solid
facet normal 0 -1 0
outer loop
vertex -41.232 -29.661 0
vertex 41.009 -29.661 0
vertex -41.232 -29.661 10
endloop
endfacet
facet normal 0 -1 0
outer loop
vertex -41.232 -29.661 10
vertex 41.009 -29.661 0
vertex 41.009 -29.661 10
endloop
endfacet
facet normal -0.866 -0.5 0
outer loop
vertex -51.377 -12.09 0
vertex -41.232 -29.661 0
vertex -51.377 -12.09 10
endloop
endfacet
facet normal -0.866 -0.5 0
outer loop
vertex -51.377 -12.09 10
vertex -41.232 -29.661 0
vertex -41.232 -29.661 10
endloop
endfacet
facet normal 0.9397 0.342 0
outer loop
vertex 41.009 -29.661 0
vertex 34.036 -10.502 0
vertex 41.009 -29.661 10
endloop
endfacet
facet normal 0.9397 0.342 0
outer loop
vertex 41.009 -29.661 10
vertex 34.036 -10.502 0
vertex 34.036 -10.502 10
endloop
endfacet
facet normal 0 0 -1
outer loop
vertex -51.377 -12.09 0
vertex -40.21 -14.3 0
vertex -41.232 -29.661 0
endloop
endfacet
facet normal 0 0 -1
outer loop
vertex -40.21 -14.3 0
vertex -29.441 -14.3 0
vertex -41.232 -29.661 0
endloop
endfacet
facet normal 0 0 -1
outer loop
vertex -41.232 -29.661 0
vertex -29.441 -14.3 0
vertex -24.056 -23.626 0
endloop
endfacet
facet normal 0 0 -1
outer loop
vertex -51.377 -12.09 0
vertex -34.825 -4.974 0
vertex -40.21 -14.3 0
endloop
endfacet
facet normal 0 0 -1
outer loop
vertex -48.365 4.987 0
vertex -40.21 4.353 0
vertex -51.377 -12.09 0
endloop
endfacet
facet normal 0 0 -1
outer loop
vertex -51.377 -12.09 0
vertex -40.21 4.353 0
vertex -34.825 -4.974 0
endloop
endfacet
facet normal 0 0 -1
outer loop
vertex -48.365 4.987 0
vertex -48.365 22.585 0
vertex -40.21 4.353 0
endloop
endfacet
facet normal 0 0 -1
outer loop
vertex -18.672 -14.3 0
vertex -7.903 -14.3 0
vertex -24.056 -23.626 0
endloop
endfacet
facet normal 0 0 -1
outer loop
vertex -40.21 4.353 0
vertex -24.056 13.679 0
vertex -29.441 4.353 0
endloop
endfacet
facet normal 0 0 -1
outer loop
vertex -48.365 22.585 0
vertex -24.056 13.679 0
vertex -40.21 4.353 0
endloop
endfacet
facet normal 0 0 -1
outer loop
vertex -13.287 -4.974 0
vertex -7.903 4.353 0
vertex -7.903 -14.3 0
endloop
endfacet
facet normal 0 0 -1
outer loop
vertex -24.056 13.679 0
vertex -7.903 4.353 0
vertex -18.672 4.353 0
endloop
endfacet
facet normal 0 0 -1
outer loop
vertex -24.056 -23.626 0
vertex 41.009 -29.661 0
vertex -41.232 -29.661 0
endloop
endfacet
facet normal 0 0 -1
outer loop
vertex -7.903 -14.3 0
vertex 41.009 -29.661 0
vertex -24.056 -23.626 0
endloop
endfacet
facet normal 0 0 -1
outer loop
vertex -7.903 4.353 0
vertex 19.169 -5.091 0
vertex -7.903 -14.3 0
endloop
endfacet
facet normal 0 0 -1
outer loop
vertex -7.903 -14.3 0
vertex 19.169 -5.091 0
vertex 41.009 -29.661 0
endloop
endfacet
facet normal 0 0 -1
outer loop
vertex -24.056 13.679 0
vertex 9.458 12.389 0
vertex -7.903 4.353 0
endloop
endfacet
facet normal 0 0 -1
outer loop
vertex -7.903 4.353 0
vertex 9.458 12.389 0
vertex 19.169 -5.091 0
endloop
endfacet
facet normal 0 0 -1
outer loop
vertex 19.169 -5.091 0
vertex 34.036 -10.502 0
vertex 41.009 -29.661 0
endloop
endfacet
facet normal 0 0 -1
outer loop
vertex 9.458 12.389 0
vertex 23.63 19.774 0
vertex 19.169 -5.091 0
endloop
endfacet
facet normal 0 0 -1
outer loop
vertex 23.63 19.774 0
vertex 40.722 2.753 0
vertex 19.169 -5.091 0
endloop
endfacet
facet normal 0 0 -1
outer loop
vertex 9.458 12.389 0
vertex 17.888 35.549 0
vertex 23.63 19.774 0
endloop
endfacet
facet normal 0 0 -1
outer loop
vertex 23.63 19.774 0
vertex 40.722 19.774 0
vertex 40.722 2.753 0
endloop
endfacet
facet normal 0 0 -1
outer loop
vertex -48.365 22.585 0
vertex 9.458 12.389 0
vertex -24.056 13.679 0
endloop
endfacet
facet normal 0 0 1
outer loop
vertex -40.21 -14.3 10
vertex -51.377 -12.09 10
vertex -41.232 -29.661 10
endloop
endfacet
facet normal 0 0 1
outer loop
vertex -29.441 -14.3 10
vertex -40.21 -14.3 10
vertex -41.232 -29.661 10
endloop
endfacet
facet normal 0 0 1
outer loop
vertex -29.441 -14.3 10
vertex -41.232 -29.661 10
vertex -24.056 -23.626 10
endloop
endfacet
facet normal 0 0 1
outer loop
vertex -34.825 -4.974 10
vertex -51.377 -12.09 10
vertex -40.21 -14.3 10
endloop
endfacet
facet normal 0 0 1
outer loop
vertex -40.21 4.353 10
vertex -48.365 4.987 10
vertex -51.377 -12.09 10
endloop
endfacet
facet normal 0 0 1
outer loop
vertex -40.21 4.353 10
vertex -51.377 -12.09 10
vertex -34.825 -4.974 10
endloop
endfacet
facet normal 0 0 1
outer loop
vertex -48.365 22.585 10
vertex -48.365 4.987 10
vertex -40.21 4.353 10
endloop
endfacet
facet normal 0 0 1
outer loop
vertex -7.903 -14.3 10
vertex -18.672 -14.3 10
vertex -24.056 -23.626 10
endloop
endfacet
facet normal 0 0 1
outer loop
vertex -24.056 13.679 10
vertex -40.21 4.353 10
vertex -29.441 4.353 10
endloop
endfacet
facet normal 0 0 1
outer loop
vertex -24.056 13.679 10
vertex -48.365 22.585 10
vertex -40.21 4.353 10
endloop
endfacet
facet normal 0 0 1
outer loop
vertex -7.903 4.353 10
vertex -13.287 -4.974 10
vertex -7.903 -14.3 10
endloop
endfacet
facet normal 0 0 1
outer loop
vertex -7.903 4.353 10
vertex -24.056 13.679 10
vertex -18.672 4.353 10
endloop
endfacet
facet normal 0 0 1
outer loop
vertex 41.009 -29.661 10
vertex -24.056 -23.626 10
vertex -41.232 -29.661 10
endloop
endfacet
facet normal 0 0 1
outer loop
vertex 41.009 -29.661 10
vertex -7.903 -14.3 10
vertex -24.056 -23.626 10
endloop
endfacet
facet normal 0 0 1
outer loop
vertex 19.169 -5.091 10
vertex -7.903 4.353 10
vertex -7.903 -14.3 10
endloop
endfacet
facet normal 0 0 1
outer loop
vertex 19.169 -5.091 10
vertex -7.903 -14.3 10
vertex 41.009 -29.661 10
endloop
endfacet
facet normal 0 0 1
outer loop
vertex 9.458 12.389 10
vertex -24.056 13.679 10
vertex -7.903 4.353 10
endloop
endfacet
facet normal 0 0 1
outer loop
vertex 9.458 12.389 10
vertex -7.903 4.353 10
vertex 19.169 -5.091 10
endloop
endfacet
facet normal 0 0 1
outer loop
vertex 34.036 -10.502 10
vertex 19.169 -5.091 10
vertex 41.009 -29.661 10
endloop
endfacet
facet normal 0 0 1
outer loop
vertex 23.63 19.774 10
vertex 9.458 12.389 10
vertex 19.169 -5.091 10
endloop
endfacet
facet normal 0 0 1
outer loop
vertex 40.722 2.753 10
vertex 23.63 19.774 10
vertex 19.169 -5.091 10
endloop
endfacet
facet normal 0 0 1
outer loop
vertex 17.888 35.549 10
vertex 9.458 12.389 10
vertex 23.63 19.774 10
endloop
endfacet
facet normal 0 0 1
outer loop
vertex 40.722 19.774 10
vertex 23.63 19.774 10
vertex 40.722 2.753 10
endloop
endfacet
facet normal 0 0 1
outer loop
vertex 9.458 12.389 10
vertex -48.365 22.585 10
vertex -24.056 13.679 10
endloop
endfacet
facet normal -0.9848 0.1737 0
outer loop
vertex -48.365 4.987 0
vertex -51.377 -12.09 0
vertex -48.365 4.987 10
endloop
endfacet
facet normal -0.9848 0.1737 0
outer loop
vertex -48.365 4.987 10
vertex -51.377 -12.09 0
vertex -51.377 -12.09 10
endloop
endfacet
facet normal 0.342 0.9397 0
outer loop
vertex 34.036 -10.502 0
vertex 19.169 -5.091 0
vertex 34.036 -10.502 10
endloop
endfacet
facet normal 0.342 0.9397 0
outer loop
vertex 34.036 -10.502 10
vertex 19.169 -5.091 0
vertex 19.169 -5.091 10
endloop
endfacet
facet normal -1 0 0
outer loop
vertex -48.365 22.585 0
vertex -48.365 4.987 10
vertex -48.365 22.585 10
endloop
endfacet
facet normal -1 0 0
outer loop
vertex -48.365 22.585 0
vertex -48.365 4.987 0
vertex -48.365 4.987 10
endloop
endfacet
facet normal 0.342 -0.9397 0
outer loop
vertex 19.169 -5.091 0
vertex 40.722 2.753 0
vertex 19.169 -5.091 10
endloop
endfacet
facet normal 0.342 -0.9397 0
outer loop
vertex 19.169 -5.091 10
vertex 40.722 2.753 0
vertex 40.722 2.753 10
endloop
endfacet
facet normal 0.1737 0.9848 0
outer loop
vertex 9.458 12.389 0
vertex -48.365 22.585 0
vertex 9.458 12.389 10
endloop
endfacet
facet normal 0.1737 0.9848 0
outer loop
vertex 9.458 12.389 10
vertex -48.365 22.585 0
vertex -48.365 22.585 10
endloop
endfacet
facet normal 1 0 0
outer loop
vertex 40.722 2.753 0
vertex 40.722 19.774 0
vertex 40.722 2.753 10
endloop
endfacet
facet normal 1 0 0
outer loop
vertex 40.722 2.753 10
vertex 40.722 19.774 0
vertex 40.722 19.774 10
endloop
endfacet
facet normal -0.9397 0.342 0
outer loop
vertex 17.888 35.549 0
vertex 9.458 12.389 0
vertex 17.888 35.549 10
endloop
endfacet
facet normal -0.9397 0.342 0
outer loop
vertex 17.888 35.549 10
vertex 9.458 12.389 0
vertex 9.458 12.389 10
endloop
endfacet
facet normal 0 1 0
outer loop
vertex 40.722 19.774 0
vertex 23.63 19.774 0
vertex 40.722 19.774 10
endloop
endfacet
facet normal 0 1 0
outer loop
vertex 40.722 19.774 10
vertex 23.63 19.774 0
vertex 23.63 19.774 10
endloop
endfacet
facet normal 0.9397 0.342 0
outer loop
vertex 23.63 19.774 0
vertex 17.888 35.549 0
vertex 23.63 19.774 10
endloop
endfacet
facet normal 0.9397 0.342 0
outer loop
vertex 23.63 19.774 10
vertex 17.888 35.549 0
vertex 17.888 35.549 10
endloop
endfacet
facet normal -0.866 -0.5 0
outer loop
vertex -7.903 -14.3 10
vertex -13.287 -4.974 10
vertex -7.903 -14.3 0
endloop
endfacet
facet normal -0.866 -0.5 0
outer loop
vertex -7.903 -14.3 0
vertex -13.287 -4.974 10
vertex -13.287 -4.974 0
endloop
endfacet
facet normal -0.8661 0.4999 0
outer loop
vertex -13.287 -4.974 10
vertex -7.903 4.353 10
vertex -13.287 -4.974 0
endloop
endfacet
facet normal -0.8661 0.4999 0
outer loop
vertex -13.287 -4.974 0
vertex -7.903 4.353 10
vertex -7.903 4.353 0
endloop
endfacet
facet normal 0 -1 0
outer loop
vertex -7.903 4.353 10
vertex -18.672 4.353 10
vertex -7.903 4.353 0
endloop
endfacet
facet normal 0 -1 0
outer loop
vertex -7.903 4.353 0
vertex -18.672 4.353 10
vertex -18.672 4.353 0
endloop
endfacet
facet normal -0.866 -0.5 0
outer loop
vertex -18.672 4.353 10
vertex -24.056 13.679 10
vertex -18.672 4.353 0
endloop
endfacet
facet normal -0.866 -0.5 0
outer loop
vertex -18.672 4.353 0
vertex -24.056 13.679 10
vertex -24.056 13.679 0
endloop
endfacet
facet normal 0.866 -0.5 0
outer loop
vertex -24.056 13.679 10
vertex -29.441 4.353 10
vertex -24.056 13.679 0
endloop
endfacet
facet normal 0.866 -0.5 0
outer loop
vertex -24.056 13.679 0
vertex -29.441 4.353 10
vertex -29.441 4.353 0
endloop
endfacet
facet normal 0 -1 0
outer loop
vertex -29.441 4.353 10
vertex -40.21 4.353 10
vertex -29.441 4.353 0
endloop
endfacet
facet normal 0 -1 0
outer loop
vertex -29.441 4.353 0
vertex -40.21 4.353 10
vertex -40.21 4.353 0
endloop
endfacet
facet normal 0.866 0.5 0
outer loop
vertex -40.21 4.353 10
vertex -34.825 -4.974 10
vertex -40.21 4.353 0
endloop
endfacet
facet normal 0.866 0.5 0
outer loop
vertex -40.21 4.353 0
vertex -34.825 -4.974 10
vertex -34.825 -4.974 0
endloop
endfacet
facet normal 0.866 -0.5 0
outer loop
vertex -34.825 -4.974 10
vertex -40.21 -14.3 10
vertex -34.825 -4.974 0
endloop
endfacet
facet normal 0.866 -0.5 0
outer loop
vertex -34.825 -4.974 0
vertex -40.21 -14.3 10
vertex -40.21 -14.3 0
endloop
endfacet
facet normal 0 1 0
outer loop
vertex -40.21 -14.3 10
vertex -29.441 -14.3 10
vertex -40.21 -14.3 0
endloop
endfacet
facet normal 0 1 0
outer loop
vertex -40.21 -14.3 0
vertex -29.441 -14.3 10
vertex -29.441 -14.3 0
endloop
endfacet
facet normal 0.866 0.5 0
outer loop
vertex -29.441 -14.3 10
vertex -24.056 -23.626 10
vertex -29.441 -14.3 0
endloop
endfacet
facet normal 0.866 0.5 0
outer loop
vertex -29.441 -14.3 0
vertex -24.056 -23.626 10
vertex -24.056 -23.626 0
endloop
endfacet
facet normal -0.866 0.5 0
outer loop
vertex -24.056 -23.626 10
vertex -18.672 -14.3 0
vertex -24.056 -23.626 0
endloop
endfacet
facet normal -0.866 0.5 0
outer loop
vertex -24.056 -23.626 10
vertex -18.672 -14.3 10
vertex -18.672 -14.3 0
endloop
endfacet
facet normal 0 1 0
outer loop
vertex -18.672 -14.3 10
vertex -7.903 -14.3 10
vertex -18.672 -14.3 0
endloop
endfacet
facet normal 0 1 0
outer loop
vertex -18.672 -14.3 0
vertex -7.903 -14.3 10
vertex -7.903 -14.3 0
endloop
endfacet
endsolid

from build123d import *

# Parameters (mm, degrees)
PAD_DEPTH    = 10
POCKET_DEPTH = 10.001


with BuildPart() as part:
    # Sketch → Pad (new body)
    with BuildSketch(Plane.XY):
        Polygon((-41.231688, -29.660868), (41.009132, -29.660868), (34.035849, -10.50193), (19.169409, -5.090988), (40.721873, 2.753467), (40.721873, 19.774112), (23.629803, 19.774112), (17.888071, 35.549391), (9.458496, 12.389326), (-48.365379, 22.585235), (-48.365379, 4.987422), (-51.376506, -12.089527), align=None)
    extrude(amount=PAD_DEPTH)

    # Sketch001 (on Face14 of Pad) → Pocket (cut, through all)
    with BuildSketch(Plane.XY.offset(10)):
        Polygon((-7.902639, -14.299959), (-13.287209, -4.97361), (-7.902639, 4.35274), (-18.67178, 4.35274), (-24.05635, 13.679089), (-29.440921, 4.35274), (-40.210062, 4.35274), (-34.825491, -4.97361), (-40.210062, -14.299959), (-29.440921, -14.299959), (-24.05635, -23.626309), (-18.67178, -14.299959), align=None)
    extrude(amount=-POCKET_DEPTH, mode=Mode.SUBTRACT)


solid = part.part
